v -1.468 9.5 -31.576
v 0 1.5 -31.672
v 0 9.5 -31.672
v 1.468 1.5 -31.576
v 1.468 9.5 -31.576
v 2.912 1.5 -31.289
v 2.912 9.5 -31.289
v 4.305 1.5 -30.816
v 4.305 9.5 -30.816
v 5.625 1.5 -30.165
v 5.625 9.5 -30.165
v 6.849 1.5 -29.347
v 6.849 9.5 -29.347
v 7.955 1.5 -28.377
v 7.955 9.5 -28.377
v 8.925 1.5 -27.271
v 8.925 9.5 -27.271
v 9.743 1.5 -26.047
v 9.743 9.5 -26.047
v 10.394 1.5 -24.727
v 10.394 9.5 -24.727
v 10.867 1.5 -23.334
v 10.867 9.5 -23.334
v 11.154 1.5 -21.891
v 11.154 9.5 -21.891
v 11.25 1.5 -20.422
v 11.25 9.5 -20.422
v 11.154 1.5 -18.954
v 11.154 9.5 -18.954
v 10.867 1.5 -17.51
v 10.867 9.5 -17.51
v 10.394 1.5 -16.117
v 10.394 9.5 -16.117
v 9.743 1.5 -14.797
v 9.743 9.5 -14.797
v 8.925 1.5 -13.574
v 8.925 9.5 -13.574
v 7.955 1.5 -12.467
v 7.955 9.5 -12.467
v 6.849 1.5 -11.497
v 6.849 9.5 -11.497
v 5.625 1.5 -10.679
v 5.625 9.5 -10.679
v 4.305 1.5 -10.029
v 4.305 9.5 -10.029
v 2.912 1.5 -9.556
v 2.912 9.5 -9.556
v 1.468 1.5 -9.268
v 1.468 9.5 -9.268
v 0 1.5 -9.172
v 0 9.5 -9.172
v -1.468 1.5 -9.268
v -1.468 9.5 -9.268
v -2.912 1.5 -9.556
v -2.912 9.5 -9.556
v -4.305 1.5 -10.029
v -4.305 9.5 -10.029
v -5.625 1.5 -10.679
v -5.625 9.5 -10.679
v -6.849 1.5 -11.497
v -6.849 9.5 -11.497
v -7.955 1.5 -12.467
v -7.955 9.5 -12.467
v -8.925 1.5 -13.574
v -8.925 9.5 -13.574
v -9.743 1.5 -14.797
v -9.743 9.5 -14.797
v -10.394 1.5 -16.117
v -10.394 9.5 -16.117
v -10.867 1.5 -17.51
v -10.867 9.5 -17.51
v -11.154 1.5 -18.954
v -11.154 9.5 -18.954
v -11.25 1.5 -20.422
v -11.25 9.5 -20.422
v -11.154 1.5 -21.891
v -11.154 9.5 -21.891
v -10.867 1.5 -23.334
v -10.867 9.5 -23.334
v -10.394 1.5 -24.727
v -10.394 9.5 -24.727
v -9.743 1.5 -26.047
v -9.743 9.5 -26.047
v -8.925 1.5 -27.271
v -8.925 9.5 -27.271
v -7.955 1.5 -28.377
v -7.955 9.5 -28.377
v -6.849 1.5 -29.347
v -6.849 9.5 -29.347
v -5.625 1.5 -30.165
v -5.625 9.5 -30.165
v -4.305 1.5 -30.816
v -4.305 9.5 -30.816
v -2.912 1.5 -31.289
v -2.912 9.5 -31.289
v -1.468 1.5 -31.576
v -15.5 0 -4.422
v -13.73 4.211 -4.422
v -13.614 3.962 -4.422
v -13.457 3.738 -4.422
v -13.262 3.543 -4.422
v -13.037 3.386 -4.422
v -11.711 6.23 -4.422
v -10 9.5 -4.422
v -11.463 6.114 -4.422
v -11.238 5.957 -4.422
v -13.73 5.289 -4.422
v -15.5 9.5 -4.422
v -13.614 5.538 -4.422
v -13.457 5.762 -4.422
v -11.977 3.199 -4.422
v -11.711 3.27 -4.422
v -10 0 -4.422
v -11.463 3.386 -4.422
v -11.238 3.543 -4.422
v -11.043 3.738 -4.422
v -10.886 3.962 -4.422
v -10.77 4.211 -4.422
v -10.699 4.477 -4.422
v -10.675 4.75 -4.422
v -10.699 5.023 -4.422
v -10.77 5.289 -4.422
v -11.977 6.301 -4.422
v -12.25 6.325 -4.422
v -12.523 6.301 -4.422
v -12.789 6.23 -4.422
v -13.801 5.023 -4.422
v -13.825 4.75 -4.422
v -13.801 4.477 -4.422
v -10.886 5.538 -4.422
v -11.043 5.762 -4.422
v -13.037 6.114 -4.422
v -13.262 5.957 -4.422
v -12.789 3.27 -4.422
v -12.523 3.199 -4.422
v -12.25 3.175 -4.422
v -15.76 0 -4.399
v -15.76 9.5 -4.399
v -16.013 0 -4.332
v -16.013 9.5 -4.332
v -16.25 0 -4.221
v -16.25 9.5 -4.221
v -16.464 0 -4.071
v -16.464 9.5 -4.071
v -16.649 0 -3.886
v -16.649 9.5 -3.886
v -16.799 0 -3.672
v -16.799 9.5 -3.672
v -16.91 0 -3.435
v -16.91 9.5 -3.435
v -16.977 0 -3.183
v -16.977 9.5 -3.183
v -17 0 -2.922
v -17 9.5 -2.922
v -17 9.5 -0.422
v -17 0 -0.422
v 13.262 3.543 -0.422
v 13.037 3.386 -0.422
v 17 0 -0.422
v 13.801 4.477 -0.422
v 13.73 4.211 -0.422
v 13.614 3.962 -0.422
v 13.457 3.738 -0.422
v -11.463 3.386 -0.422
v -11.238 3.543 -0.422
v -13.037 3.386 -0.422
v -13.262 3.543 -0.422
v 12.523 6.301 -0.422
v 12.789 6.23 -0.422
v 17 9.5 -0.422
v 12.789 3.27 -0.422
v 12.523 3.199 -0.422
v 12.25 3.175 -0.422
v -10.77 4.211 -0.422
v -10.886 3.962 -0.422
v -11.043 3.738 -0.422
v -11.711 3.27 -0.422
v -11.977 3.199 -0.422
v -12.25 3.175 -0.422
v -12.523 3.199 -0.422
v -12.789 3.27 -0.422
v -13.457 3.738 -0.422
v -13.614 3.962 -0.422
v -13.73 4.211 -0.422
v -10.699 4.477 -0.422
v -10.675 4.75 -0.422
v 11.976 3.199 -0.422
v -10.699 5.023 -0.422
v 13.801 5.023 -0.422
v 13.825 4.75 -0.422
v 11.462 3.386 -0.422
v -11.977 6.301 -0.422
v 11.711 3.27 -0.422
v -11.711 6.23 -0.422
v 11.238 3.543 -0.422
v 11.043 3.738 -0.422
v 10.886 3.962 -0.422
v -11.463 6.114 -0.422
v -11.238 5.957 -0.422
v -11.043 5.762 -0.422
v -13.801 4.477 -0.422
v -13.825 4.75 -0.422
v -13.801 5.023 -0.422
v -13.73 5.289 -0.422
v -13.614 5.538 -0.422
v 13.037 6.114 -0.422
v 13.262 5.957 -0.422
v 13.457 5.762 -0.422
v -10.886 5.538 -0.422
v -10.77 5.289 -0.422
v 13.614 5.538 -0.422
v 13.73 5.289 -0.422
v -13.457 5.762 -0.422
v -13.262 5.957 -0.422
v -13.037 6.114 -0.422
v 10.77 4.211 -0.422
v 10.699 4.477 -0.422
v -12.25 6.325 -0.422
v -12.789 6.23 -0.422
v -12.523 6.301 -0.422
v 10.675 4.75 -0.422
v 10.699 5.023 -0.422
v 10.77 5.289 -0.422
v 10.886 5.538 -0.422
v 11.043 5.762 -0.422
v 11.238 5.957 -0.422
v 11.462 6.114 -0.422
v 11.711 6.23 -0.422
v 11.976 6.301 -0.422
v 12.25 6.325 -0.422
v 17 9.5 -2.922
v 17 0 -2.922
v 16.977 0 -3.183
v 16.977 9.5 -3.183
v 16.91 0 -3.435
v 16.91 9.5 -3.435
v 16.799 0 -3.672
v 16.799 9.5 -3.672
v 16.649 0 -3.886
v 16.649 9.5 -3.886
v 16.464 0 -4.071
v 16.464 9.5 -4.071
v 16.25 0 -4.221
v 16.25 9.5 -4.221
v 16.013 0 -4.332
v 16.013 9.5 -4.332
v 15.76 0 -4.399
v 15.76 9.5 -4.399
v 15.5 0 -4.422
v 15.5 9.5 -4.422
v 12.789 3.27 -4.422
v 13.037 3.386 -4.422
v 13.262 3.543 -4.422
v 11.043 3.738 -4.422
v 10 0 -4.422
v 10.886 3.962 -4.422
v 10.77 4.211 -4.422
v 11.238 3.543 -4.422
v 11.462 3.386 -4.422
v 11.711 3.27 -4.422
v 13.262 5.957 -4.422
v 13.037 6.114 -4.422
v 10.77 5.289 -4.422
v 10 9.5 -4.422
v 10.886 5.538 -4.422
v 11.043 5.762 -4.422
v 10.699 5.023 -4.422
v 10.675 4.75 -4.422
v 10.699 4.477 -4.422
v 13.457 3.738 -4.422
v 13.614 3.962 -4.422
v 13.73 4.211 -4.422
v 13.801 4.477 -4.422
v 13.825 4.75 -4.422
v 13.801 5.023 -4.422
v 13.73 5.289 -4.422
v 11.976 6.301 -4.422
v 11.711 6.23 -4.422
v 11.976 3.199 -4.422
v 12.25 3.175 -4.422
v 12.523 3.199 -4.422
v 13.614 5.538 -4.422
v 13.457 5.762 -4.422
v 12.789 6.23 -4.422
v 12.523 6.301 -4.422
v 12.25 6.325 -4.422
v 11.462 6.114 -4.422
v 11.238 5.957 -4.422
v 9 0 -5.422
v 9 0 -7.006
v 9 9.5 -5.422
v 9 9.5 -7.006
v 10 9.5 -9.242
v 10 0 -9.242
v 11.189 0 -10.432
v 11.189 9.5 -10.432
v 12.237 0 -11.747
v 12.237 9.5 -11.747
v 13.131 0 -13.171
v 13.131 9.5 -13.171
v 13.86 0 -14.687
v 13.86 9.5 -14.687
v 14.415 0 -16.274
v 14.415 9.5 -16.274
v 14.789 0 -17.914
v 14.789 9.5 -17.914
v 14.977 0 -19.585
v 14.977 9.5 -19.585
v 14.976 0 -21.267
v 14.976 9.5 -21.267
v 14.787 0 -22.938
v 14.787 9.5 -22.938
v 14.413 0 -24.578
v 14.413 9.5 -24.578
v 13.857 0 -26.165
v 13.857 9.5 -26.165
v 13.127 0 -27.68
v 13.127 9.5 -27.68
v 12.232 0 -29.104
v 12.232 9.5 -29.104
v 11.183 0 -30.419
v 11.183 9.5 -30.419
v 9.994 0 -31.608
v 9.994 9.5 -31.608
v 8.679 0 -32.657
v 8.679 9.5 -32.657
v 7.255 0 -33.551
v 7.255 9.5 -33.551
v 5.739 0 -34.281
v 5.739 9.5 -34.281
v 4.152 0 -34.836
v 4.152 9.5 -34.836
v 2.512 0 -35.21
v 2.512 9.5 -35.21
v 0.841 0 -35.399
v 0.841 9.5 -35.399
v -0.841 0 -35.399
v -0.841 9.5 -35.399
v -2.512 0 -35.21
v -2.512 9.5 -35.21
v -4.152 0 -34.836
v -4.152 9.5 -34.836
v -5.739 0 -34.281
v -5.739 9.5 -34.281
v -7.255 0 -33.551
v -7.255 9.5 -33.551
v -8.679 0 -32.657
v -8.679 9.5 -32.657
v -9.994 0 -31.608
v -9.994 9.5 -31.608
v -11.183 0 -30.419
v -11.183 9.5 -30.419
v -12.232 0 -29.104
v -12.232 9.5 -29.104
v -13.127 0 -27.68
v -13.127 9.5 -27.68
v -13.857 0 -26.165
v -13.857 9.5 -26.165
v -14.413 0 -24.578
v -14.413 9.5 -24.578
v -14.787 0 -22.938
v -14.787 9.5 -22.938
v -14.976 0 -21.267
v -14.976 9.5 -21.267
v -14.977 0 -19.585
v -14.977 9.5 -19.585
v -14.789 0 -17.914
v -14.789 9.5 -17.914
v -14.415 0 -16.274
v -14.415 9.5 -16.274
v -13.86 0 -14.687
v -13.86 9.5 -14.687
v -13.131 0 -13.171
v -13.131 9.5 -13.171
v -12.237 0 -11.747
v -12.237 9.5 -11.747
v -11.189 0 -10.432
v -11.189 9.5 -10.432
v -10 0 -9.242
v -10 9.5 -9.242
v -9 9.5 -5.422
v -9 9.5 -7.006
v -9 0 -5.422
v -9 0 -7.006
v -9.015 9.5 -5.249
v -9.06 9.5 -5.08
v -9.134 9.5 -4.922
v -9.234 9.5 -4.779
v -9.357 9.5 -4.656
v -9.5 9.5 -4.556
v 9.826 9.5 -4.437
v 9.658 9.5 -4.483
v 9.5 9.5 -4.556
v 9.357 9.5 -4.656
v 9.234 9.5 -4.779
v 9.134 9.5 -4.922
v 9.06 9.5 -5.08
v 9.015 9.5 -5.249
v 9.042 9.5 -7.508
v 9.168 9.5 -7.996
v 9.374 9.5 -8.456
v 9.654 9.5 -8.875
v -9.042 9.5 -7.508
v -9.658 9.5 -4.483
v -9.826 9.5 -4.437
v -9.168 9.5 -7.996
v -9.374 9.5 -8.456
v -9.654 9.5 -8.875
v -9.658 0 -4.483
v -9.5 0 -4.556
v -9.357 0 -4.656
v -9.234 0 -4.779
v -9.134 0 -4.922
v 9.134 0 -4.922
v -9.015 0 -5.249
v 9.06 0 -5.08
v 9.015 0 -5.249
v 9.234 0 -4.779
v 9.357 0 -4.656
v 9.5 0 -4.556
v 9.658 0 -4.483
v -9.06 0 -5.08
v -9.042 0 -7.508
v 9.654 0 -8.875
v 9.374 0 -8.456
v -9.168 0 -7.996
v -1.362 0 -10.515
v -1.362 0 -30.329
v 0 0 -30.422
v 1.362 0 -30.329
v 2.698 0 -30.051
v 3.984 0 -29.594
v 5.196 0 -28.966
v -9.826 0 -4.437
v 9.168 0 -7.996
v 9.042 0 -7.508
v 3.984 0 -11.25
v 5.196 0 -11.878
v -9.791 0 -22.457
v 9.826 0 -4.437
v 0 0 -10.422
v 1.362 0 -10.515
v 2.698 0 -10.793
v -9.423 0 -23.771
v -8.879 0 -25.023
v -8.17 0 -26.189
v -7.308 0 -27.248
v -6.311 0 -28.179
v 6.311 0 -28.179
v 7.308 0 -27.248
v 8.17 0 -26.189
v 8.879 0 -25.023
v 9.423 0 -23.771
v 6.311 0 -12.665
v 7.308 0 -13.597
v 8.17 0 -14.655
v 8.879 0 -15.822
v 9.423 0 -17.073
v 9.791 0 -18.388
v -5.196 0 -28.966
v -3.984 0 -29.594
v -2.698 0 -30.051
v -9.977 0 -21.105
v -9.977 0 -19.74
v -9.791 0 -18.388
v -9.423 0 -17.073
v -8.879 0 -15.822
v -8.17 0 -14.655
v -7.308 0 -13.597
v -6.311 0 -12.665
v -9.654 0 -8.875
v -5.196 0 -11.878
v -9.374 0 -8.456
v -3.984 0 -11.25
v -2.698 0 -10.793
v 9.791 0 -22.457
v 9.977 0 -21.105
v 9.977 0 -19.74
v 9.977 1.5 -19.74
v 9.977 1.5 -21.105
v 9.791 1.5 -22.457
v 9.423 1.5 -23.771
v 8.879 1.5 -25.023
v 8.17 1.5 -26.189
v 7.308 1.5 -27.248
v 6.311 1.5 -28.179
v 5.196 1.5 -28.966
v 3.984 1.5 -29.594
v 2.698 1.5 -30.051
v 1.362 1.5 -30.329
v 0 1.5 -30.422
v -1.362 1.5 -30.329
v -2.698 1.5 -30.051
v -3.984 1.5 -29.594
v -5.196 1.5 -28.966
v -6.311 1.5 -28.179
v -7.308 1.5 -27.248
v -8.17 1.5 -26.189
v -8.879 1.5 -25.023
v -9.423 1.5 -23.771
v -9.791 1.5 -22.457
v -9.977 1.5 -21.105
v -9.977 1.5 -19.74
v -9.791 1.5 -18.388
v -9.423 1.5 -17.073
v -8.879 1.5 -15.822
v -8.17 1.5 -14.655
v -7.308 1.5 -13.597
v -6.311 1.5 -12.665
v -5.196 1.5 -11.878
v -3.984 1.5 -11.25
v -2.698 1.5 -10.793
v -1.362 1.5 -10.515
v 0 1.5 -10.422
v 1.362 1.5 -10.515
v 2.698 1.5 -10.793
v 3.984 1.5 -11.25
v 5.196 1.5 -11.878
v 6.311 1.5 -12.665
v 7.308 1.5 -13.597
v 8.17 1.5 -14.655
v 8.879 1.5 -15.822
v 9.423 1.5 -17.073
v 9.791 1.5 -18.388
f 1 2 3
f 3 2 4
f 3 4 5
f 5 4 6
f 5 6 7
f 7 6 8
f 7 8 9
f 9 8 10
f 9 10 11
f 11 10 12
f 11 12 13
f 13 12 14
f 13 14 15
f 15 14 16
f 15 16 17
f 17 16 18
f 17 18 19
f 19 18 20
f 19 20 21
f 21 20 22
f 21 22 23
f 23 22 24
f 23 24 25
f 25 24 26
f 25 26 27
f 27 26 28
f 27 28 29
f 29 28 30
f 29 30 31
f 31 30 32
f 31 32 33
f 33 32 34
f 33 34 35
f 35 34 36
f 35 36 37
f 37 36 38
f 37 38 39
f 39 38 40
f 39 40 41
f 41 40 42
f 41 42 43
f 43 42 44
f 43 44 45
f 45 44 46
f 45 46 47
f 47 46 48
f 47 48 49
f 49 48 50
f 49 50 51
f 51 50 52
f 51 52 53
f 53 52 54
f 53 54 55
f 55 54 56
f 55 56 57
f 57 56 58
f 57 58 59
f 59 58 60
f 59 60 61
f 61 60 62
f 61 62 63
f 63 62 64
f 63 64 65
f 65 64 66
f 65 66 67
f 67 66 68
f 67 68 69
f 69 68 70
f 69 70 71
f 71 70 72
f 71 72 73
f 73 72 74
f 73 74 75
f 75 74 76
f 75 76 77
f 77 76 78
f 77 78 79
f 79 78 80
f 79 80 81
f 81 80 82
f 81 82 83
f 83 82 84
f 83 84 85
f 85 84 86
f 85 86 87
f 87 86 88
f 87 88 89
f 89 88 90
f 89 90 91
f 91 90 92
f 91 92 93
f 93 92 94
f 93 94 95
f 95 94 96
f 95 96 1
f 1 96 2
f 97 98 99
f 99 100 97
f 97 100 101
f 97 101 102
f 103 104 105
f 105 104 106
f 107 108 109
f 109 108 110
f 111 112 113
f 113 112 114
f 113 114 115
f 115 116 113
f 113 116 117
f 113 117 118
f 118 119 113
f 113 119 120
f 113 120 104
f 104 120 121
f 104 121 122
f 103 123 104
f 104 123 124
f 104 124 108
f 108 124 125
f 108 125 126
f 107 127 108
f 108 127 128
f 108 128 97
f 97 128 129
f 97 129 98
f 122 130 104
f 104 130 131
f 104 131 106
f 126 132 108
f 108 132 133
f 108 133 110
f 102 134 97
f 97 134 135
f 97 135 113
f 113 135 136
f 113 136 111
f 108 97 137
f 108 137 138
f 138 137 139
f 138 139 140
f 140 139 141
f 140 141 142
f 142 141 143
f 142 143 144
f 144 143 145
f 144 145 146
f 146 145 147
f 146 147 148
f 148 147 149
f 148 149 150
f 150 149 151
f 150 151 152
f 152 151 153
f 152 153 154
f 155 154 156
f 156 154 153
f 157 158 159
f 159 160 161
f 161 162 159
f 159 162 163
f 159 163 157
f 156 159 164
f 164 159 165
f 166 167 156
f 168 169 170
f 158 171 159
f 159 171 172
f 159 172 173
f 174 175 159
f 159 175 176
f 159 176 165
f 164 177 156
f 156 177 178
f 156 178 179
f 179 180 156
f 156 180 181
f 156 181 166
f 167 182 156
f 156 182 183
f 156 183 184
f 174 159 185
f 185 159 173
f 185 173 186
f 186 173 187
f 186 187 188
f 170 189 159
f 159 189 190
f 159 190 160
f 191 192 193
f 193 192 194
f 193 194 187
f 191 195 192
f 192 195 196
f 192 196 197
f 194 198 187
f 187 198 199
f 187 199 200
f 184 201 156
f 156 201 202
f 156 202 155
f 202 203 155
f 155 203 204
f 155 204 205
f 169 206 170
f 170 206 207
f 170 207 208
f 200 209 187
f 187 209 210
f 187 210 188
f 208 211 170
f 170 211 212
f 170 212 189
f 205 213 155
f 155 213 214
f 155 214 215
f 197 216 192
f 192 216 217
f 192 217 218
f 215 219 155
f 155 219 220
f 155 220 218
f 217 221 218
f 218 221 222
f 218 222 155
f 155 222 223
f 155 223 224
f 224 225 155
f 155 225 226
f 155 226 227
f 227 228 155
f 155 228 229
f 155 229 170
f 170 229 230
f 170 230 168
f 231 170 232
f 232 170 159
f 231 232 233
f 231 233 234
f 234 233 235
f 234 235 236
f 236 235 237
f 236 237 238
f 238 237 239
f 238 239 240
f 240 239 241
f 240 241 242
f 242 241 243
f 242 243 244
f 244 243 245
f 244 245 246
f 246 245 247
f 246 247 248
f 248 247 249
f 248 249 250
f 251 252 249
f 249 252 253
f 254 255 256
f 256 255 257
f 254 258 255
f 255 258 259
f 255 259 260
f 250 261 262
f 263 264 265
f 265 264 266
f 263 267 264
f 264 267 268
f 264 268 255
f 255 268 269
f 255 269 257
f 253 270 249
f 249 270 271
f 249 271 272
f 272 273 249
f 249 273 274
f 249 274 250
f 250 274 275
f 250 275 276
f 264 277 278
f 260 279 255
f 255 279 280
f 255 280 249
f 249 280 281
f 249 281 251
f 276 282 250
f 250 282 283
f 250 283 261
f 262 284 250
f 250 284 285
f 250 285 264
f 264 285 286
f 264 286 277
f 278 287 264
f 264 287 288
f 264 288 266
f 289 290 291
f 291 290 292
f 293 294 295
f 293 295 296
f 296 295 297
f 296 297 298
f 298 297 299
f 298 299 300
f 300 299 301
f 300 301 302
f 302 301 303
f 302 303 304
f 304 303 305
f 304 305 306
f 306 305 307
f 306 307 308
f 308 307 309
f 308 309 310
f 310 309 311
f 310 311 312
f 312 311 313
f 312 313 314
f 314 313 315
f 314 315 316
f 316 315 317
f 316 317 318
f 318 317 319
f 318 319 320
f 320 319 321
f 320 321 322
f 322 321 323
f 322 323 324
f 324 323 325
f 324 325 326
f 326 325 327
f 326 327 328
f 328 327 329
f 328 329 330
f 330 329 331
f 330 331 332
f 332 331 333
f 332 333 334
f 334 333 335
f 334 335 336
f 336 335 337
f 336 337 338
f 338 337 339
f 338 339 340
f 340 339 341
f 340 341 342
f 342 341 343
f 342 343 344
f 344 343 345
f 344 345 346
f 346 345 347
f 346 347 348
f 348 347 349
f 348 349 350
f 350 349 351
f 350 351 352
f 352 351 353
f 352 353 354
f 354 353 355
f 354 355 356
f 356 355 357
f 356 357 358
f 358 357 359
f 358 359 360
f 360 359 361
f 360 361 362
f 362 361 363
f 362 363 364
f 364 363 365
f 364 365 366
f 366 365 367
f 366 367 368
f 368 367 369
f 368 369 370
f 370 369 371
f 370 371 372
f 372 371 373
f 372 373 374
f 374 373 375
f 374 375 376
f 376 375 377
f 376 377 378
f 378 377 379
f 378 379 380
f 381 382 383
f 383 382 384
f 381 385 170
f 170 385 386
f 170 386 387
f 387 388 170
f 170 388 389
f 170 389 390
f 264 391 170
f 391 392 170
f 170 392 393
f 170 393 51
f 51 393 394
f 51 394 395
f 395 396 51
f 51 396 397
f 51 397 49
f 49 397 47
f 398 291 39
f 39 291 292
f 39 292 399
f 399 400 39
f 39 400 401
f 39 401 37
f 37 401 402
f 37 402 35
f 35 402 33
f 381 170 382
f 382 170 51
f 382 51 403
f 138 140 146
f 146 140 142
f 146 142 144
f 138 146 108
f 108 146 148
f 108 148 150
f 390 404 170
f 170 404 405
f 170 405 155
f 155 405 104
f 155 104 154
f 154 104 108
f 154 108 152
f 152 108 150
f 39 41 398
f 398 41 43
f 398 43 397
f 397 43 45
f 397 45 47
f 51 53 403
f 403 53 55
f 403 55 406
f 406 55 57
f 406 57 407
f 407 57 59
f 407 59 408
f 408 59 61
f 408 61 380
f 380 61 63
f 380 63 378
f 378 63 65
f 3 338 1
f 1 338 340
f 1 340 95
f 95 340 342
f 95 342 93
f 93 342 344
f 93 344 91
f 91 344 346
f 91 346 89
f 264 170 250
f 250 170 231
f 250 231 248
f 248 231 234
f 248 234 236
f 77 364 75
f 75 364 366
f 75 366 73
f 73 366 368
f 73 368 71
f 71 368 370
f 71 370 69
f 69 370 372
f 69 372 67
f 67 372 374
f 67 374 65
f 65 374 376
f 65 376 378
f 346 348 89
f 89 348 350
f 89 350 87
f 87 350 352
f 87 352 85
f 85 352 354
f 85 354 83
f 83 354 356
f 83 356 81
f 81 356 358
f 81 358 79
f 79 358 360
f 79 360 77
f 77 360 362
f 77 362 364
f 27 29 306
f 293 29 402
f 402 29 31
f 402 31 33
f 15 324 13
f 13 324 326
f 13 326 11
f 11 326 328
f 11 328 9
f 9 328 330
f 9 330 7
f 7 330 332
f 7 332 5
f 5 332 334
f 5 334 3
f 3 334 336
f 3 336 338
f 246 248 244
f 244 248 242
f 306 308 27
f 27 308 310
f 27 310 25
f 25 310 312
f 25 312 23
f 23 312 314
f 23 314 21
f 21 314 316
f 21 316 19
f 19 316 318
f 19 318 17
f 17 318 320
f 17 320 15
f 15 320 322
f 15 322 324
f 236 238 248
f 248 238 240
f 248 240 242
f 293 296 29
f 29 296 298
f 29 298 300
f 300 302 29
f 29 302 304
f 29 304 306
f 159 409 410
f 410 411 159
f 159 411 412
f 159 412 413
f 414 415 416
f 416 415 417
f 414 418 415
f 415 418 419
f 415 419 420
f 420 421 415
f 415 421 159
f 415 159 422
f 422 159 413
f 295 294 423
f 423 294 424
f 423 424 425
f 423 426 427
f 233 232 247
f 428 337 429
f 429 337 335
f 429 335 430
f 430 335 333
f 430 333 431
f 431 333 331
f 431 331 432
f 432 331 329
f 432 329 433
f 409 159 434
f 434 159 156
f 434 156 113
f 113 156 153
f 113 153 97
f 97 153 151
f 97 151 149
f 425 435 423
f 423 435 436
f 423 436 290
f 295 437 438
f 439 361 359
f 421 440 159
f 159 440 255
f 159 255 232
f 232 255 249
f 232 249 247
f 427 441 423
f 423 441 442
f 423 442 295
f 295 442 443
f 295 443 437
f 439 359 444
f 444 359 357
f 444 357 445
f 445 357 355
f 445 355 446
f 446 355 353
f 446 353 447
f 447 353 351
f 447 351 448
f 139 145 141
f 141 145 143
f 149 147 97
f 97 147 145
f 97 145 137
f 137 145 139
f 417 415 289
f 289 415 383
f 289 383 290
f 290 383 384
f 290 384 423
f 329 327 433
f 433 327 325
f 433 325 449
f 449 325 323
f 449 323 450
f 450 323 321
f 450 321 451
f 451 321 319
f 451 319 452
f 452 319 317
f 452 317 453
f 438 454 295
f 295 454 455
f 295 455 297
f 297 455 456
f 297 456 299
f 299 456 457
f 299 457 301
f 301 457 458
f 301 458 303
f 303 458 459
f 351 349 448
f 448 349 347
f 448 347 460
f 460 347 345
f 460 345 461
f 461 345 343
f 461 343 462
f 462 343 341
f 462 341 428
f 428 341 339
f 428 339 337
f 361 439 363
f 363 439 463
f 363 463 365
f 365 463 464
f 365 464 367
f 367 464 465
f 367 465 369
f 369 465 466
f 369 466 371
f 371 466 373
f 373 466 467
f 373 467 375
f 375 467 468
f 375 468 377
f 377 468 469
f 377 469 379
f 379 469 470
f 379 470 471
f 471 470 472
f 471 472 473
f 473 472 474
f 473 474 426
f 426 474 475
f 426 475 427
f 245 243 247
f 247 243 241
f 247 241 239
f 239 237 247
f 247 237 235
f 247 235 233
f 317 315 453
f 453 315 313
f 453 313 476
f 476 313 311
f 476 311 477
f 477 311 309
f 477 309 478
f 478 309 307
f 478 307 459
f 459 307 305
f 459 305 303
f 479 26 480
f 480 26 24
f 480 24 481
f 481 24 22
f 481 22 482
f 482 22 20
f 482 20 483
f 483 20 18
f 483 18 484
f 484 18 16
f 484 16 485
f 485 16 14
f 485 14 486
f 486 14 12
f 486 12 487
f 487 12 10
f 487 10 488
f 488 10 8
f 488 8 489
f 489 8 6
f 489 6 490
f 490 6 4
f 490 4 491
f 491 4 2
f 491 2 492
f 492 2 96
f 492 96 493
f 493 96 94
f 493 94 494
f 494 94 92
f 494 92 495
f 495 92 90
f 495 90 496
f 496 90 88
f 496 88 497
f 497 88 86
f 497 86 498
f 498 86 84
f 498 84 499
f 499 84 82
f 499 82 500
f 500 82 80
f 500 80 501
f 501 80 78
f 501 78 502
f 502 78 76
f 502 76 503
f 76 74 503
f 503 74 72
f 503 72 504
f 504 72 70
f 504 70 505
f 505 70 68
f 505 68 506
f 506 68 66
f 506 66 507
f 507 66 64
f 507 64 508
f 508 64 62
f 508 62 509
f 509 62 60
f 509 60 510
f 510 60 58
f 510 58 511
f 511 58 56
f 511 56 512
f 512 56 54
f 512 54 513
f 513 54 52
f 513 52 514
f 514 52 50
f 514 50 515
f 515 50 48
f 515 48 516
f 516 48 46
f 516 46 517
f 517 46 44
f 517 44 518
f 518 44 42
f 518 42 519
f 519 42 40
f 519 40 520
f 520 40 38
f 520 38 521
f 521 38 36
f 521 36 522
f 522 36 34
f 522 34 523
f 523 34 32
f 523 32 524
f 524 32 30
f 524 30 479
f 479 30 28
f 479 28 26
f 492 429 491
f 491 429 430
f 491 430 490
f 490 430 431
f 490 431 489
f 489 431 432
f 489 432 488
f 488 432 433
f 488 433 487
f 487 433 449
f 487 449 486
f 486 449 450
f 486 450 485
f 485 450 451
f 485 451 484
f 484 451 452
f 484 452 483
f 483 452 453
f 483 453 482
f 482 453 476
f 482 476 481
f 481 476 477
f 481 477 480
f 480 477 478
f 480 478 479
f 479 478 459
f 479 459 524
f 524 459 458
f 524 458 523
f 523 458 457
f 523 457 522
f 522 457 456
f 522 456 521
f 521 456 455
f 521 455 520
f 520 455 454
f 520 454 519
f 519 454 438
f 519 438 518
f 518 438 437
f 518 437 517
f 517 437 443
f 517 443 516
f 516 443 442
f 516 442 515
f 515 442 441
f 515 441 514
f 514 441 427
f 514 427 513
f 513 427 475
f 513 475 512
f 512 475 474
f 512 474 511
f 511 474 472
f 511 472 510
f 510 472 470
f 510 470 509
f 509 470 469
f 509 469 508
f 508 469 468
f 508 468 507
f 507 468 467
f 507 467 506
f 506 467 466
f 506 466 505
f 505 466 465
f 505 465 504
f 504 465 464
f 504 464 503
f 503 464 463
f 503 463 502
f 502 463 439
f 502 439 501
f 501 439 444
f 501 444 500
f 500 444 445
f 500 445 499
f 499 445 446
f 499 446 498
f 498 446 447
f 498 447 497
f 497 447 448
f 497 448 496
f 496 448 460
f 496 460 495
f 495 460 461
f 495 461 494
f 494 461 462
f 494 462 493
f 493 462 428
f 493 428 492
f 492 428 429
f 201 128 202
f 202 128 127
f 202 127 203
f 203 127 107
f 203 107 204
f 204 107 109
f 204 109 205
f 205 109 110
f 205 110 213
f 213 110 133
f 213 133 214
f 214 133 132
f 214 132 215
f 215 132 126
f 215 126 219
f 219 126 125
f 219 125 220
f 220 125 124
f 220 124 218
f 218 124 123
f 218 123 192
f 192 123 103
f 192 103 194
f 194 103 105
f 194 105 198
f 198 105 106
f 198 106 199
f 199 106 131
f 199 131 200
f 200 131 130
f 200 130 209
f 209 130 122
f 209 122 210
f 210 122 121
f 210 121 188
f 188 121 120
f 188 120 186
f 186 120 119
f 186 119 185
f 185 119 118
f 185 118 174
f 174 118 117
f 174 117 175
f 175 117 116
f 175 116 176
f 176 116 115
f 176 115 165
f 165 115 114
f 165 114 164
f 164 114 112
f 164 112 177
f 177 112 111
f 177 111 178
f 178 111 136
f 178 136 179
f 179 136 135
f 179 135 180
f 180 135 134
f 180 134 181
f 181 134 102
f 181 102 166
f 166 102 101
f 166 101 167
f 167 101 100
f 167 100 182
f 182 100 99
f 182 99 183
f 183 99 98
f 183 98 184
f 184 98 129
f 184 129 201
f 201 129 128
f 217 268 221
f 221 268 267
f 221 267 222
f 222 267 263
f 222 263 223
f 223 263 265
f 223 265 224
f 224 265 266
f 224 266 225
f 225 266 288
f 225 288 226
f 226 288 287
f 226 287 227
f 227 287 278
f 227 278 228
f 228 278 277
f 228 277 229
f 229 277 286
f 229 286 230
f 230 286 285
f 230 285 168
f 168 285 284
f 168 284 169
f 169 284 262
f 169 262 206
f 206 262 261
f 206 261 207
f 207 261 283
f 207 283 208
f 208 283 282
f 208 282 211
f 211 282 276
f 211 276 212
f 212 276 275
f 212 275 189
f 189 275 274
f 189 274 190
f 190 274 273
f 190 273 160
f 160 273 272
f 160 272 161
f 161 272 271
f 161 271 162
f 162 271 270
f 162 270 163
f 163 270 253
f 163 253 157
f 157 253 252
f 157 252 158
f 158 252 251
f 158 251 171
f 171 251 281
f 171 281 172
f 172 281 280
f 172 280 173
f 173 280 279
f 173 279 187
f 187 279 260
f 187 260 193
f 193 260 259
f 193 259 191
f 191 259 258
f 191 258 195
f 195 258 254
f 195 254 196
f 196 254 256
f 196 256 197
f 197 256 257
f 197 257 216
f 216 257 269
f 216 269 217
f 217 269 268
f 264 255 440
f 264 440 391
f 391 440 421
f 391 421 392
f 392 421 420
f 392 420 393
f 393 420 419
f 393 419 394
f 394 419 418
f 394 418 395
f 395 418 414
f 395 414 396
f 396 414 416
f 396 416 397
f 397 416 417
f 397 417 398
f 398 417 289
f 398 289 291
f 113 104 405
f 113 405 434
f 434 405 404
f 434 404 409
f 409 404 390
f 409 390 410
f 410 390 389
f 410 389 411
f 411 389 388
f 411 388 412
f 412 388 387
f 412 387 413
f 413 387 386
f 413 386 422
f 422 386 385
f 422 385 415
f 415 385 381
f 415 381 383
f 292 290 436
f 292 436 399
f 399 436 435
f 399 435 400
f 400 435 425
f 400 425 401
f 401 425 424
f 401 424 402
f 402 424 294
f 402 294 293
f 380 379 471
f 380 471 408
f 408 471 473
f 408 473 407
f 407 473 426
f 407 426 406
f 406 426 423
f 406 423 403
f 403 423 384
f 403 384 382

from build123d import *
from OCP.BRepFilletAPI import BRepFilletAPI_MakeFillet

# Parameters (mm, degrees)
SKETCH3_R           = 11.25
BOSS_EXTRUDE5_DEPTH = 9.5
SKETCH11_R          = 11.25
SKETCH11_R_2        = 10
BOSS_EXTRUDE6_DEPTH = 1.5
SKETCH12_R          = 1.575
CUT_EXTRUDE3_DEPTH  = 37.609425016
SKETCH13_R          = 1.575
CUT_EXTRUDE4_DEPTH  = 37.609425016
FILLET1_R1          = 3
FILLET1_R2          = 1


with BuildPart() as part:
    # Sketch3 → Boss-Extrude5 (new body)
    with BuildSketch(Plane(origin=(0, 0, 0), x_dir=(1, 0, 0), z_dir=(0, 1, 0))):
        with BuildLine():
            Line((-9, 4.422205102), (-15.5, 4.422205102))
            ThreePointArc((-15.5, 4.422205102), (-16.560660172, 3.982865274), (-17, 2.922205102))
            Line((-17, 2.922205102), (-17, 0.422205102))
            Line((-17, 0.422205102), (17, 0.422205102))
            Line((17, 0.422205102), (17, 2.922205102))
            ThreePointArc((17, 2.922205102), (16.560660172, 3.982865274), (15.5, 4.422205102))
            Line((15.5, 4.422205102), (9, 4.422205102))
            Line((9, 4.422205102), (9, 8.422205102))
            ThreePointArc((9, 8.422205102), (0, 35.422205102), (-9, 8.422205102))
            Line((-9, 8.422205102), (-9, 4.422205102))
        make_face()
        with Locations((0, 20.422205102)):
            Circle(SKETCH3_R, mode=Mode.SUBTRACT)
    extrude(amount=BOSS_EXTRUDE5_DEPTH)

    # Sketch11 → Boss-Extrude6 (add)
    with BuildSketch(Plane.XZ):
        with Locations((0, -20.422205102)):
            Circle(SKETCH11_R)
        with Locations((0, -20.422205102)):
            Circle(SKETCH11_R_2, mode=Mode.SUBTRACT)
    extrude(amount=-BOSS_EXTRUDE6_DEPTH)

    # Sketch12 → Cut-Extrude3 (cut, through all)
    with BuildSketch(Plane(origin=(0, 0, -4.422205102), x_dir=(-1, 0, 0), z_dir=(0, 0, -1))):
        with Locations((12.25, 4.75)):
            Circle(SKETCH12_R)
    extrude(amount=-CUT_EXTRUDE3_DEPTH, mode=Mode.SUBTRACT)

    # Sketch13 → Cut-Extrude4 (cut, through all)
    with BuildSketch(Plane(origin=(0, 0, -4.422205102), x_dir=(-1, 0, 0), z_dir=(0, 0, -1))):
        with Locations((-12.25, 4.75)):
            Circle(SKETCH13_R)
    extrude(amount=-CUT_EXTRUDE4_DEPTH, mode=Mode.SUBTRACT)

    # Fillet1: one fillet with a radius per group of edges: ONE call of the kernel's fillet builder (fillet() takes one radius for all edges)
    fillet1_edges_1 = [part.edges().sort_by_distance(p)[0] for p in [
        (-9, 4.75, -8.422205102),
        (9, 4.75, -8.422205102),
    ]]
    fillet1_edges_2 = [part.edges().sort_by_distance(p)[0] for p in [
        (-9, 4.75, -4.422205102),
        (9, 4.75, -4.422205102),
    ]]
    fillet1 = BRepFilletAPI_MakeFillet(part.part.solid().wrapped)
    for e in fillet1_edges_1:
        fillet1.Add(FILLET1_R1, e.wrapped)
    for e in fillet1_edges_2:
        fillet1.Add(FILLET1_R2, e.wrapped)
    add(Compound.cast(fillet1.Shape()), mode=Mode.REPLACE)


solid = part.part
